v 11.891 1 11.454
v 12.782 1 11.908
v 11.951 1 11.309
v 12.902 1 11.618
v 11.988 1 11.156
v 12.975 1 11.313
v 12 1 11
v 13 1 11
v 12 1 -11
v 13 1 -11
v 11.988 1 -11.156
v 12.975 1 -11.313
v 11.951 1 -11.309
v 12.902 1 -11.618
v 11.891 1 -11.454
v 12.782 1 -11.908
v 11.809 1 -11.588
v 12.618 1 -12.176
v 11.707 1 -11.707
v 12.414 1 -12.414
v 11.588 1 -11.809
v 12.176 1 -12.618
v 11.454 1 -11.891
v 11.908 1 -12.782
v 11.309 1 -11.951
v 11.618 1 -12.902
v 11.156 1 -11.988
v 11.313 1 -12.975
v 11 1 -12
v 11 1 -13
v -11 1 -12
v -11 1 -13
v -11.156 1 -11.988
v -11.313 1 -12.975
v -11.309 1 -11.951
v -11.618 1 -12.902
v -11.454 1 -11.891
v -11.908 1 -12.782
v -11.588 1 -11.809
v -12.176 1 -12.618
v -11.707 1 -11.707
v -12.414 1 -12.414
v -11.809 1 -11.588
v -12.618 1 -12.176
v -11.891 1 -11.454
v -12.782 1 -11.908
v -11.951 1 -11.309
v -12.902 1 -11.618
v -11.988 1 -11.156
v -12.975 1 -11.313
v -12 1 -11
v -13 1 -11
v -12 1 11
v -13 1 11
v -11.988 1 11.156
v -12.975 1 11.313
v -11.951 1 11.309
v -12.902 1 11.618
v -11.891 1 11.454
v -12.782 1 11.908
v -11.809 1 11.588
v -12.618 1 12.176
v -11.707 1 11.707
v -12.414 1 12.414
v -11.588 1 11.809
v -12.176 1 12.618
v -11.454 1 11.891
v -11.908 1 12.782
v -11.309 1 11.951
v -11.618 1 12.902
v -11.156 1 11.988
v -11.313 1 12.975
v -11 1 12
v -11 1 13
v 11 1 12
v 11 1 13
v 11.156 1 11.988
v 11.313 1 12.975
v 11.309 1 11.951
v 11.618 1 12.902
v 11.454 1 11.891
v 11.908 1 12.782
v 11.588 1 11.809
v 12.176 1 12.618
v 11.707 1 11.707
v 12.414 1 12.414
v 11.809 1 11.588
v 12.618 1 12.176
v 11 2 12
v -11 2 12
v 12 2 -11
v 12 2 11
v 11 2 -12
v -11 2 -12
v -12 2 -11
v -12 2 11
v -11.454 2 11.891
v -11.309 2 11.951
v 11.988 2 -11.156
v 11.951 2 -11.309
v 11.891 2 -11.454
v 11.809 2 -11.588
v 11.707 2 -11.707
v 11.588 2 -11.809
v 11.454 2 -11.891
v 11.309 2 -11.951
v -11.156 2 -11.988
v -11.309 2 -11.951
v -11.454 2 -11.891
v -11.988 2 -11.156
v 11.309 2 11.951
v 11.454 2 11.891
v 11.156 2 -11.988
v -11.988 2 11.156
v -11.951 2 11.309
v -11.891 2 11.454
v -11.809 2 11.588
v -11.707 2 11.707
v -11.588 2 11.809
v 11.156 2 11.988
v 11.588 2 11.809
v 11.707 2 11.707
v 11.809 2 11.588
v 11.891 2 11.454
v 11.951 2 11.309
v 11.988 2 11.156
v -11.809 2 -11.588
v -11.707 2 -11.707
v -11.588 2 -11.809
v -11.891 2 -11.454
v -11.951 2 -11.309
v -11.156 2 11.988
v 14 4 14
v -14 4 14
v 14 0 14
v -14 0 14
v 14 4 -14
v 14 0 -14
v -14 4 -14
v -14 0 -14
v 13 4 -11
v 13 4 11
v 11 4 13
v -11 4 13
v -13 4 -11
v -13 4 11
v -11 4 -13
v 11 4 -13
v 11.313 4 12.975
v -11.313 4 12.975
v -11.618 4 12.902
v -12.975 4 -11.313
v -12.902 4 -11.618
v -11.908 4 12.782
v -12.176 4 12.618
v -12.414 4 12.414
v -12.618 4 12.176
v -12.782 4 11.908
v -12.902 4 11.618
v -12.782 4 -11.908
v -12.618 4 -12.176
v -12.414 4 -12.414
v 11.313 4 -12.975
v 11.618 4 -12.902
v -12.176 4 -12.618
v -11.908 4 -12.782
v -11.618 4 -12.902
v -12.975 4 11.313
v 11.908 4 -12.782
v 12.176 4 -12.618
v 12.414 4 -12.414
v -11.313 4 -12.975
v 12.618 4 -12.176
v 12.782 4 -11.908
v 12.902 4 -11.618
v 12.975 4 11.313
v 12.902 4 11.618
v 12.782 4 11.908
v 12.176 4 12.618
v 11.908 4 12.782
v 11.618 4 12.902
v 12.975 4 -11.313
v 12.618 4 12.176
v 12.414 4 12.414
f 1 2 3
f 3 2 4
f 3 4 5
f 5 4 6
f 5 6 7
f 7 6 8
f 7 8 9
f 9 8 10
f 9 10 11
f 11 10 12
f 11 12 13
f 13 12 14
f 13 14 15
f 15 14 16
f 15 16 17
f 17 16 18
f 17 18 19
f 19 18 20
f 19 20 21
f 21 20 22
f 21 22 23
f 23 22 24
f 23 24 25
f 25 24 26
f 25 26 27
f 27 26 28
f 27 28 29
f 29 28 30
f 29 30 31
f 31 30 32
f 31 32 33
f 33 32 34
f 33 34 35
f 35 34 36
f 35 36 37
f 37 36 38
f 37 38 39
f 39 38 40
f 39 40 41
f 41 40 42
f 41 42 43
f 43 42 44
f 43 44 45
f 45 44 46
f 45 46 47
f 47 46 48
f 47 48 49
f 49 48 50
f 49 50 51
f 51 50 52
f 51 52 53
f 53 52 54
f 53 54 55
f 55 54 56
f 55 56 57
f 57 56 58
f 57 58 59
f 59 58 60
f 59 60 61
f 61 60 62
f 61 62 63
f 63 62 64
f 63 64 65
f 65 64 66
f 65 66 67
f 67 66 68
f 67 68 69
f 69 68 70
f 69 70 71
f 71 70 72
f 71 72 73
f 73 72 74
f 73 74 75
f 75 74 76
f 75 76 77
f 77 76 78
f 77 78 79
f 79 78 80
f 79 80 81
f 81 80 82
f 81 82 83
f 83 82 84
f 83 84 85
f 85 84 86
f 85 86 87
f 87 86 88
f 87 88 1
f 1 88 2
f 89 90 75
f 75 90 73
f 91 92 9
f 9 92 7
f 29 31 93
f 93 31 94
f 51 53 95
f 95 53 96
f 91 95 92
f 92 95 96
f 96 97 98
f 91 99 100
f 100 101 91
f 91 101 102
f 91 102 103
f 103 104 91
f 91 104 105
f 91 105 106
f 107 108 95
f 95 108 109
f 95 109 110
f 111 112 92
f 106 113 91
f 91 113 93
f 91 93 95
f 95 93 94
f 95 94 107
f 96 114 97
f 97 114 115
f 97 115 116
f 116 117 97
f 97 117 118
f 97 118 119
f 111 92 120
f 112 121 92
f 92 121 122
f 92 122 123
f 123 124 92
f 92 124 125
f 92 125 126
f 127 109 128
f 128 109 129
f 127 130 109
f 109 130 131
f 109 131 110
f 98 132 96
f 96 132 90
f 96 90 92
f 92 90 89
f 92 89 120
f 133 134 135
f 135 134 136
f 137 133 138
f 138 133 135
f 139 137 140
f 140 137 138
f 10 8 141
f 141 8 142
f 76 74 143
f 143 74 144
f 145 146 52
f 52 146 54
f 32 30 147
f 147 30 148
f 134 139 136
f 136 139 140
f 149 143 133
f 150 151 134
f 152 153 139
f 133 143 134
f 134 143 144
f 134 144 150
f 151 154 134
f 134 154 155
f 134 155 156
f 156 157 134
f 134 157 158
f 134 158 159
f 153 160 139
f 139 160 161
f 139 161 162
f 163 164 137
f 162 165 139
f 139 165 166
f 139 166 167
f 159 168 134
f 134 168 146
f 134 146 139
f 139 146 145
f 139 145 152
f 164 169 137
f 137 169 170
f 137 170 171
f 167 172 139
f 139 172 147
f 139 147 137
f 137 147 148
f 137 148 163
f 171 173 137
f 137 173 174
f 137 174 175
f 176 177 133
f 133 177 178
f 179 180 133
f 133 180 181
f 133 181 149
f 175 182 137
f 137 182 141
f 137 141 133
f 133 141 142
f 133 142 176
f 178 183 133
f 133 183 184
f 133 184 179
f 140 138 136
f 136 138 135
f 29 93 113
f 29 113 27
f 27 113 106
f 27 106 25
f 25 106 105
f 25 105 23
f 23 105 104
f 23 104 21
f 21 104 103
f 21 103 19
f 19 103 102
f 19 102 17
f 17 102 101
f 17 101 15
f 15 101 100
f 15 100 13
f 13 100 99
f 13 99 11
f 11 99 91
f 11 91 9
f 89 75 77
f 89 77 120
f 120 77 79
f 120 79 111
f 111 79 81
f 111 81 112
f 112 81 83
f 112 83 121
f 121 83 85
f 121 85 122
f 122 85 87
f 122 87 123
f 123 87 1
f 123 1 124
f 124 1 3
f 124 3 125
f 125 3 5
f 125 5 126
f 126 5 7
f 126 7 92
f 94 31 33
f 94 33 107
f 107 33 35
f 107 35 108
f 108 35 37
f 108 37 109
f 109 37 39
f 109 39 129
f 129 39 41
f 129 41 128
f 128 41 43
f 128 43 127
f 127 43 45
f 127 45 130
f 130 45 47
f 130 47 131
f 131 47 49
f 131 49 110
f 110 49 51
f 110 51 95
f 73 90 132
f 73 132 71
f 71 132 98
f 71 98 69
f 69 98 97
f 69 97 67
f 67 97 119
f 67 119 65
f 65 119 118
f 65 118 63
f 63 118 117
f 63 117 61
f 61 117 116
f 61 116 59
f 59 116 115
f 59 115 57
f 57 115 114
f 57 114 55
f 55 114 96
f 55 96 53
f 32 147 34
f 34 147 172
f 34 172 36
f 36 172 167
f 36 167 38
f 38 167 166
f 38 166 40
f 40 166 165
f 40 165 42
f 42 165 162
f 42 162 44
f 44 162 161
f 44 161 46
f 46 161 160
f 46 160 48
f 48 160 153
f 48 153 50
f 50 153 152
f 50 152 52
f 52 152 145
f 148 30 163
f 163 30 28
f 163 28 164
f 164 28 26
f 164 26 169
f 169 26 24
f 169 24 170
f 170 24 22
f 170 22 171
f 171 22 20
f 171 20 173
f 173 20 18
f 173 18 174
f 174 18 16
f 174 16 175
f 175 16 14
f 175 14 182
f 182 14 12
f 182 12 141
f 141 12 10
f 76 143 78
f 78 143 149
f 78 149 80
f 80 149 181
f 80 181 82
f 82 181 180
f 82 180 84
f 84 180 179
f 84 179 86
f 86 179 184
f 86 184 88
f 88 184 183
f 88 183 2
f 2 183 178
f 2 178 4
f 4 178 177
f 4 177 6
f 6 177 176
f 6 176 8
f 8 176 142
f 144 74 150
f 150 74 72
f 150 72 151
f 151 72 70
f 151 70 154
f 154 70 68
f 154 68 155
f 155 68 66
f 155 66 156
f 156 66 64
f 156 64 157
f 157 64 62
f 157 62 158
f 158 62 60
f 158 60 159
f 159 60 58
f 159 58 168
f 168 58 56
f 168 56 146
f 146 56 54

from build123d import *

# Parameters (mm, degrees)
SKETCH1_W           = 26
SKETCH1_H           = 26
SKETCH1_W_2         = 24
SKETCH1_H_2         = 24
BOSS_EXTRUDE1_DEPTH = 1
SKETCH1_3_W         = 24
SKETCH1_3_H         = 24
BOSS_EXTRUDE2_DEPTH = 2
SKETCH1_4_W         = 28
SKETCH1_4_H         = 28
SKETCH1_4_W_2       = 26
SKETCH1_4_H_2       = 26
BOSS_EXTRUDE3_DEPTH = 4
FILLET1_R           = 1
FILLET2_R           = 2


with BuildPart() as part:
    # Sketch1 → Boss-Extrude1 (new body)
    with BuildSketch(Plane(origin=(0, 0, 0), x_dir=(1, 0, 0), z_dir=(0, 1, 0))):
        Rectangle(SKETCH1_W, SKETCH1_H)
        Rectangle(SKETCH1_W_2, SKETCH1_H_2, mode=Mode.SUBTRACT)
    extrude(amount=BOSS_EXTRUDE1_DEPTH)

    # Sketch1<3> → Boss-Extrude2 (add)
    with BuildSketch(Plane(origin=(0, 0, 0), x_dir=(1, 0, 0), z_dir=(0, 1, 0))):
        Rectangle(SKETCH1_3_W, SKETCH1_3_H)
    extrude(amount=BOSS_EXTRUDE2_DEPTH)

    # Sketch1<4> → Boss-Extrude3 (add)
    with BuildSketch(Plane(origin=(0, 0, 0), x_dir=(1, 0, 0), z_dir=(0, 1, 0))):
        Rectangle(SKETCH1_4_W, SKETCH1_4_H)
        Rectangle(SKETCH1_4_W_2, SKETCH1_4_H_2, mode=Mode.SUBTRACT)
    extrude(amount=BOSS_EXTRUDE3_DEPTH)

    # Fillet1
    fillet1_edges = [part.edges().sort_by_distance(p)[0] for p in [
        (-12, 1.5, 12),
        (12, 1.5, 12),
        (12, 1.5, -12),
        (-12, 1.5, -12),
    ]]
    fillet(fillet1_edges, radius=FILLET1_R)

    # Fillet2
    fillet2_edges = [part.edges().sort_by_distance(p)[0] for p in [
        (13, 2.5, -13),
        (13, 2.5, 13),
        (-13, 2.5, 13),
        (-13, 2.5, -13),
    ]]
    fillet(fillet2_edges, radius=FILLET2_R)


solid = part.part
